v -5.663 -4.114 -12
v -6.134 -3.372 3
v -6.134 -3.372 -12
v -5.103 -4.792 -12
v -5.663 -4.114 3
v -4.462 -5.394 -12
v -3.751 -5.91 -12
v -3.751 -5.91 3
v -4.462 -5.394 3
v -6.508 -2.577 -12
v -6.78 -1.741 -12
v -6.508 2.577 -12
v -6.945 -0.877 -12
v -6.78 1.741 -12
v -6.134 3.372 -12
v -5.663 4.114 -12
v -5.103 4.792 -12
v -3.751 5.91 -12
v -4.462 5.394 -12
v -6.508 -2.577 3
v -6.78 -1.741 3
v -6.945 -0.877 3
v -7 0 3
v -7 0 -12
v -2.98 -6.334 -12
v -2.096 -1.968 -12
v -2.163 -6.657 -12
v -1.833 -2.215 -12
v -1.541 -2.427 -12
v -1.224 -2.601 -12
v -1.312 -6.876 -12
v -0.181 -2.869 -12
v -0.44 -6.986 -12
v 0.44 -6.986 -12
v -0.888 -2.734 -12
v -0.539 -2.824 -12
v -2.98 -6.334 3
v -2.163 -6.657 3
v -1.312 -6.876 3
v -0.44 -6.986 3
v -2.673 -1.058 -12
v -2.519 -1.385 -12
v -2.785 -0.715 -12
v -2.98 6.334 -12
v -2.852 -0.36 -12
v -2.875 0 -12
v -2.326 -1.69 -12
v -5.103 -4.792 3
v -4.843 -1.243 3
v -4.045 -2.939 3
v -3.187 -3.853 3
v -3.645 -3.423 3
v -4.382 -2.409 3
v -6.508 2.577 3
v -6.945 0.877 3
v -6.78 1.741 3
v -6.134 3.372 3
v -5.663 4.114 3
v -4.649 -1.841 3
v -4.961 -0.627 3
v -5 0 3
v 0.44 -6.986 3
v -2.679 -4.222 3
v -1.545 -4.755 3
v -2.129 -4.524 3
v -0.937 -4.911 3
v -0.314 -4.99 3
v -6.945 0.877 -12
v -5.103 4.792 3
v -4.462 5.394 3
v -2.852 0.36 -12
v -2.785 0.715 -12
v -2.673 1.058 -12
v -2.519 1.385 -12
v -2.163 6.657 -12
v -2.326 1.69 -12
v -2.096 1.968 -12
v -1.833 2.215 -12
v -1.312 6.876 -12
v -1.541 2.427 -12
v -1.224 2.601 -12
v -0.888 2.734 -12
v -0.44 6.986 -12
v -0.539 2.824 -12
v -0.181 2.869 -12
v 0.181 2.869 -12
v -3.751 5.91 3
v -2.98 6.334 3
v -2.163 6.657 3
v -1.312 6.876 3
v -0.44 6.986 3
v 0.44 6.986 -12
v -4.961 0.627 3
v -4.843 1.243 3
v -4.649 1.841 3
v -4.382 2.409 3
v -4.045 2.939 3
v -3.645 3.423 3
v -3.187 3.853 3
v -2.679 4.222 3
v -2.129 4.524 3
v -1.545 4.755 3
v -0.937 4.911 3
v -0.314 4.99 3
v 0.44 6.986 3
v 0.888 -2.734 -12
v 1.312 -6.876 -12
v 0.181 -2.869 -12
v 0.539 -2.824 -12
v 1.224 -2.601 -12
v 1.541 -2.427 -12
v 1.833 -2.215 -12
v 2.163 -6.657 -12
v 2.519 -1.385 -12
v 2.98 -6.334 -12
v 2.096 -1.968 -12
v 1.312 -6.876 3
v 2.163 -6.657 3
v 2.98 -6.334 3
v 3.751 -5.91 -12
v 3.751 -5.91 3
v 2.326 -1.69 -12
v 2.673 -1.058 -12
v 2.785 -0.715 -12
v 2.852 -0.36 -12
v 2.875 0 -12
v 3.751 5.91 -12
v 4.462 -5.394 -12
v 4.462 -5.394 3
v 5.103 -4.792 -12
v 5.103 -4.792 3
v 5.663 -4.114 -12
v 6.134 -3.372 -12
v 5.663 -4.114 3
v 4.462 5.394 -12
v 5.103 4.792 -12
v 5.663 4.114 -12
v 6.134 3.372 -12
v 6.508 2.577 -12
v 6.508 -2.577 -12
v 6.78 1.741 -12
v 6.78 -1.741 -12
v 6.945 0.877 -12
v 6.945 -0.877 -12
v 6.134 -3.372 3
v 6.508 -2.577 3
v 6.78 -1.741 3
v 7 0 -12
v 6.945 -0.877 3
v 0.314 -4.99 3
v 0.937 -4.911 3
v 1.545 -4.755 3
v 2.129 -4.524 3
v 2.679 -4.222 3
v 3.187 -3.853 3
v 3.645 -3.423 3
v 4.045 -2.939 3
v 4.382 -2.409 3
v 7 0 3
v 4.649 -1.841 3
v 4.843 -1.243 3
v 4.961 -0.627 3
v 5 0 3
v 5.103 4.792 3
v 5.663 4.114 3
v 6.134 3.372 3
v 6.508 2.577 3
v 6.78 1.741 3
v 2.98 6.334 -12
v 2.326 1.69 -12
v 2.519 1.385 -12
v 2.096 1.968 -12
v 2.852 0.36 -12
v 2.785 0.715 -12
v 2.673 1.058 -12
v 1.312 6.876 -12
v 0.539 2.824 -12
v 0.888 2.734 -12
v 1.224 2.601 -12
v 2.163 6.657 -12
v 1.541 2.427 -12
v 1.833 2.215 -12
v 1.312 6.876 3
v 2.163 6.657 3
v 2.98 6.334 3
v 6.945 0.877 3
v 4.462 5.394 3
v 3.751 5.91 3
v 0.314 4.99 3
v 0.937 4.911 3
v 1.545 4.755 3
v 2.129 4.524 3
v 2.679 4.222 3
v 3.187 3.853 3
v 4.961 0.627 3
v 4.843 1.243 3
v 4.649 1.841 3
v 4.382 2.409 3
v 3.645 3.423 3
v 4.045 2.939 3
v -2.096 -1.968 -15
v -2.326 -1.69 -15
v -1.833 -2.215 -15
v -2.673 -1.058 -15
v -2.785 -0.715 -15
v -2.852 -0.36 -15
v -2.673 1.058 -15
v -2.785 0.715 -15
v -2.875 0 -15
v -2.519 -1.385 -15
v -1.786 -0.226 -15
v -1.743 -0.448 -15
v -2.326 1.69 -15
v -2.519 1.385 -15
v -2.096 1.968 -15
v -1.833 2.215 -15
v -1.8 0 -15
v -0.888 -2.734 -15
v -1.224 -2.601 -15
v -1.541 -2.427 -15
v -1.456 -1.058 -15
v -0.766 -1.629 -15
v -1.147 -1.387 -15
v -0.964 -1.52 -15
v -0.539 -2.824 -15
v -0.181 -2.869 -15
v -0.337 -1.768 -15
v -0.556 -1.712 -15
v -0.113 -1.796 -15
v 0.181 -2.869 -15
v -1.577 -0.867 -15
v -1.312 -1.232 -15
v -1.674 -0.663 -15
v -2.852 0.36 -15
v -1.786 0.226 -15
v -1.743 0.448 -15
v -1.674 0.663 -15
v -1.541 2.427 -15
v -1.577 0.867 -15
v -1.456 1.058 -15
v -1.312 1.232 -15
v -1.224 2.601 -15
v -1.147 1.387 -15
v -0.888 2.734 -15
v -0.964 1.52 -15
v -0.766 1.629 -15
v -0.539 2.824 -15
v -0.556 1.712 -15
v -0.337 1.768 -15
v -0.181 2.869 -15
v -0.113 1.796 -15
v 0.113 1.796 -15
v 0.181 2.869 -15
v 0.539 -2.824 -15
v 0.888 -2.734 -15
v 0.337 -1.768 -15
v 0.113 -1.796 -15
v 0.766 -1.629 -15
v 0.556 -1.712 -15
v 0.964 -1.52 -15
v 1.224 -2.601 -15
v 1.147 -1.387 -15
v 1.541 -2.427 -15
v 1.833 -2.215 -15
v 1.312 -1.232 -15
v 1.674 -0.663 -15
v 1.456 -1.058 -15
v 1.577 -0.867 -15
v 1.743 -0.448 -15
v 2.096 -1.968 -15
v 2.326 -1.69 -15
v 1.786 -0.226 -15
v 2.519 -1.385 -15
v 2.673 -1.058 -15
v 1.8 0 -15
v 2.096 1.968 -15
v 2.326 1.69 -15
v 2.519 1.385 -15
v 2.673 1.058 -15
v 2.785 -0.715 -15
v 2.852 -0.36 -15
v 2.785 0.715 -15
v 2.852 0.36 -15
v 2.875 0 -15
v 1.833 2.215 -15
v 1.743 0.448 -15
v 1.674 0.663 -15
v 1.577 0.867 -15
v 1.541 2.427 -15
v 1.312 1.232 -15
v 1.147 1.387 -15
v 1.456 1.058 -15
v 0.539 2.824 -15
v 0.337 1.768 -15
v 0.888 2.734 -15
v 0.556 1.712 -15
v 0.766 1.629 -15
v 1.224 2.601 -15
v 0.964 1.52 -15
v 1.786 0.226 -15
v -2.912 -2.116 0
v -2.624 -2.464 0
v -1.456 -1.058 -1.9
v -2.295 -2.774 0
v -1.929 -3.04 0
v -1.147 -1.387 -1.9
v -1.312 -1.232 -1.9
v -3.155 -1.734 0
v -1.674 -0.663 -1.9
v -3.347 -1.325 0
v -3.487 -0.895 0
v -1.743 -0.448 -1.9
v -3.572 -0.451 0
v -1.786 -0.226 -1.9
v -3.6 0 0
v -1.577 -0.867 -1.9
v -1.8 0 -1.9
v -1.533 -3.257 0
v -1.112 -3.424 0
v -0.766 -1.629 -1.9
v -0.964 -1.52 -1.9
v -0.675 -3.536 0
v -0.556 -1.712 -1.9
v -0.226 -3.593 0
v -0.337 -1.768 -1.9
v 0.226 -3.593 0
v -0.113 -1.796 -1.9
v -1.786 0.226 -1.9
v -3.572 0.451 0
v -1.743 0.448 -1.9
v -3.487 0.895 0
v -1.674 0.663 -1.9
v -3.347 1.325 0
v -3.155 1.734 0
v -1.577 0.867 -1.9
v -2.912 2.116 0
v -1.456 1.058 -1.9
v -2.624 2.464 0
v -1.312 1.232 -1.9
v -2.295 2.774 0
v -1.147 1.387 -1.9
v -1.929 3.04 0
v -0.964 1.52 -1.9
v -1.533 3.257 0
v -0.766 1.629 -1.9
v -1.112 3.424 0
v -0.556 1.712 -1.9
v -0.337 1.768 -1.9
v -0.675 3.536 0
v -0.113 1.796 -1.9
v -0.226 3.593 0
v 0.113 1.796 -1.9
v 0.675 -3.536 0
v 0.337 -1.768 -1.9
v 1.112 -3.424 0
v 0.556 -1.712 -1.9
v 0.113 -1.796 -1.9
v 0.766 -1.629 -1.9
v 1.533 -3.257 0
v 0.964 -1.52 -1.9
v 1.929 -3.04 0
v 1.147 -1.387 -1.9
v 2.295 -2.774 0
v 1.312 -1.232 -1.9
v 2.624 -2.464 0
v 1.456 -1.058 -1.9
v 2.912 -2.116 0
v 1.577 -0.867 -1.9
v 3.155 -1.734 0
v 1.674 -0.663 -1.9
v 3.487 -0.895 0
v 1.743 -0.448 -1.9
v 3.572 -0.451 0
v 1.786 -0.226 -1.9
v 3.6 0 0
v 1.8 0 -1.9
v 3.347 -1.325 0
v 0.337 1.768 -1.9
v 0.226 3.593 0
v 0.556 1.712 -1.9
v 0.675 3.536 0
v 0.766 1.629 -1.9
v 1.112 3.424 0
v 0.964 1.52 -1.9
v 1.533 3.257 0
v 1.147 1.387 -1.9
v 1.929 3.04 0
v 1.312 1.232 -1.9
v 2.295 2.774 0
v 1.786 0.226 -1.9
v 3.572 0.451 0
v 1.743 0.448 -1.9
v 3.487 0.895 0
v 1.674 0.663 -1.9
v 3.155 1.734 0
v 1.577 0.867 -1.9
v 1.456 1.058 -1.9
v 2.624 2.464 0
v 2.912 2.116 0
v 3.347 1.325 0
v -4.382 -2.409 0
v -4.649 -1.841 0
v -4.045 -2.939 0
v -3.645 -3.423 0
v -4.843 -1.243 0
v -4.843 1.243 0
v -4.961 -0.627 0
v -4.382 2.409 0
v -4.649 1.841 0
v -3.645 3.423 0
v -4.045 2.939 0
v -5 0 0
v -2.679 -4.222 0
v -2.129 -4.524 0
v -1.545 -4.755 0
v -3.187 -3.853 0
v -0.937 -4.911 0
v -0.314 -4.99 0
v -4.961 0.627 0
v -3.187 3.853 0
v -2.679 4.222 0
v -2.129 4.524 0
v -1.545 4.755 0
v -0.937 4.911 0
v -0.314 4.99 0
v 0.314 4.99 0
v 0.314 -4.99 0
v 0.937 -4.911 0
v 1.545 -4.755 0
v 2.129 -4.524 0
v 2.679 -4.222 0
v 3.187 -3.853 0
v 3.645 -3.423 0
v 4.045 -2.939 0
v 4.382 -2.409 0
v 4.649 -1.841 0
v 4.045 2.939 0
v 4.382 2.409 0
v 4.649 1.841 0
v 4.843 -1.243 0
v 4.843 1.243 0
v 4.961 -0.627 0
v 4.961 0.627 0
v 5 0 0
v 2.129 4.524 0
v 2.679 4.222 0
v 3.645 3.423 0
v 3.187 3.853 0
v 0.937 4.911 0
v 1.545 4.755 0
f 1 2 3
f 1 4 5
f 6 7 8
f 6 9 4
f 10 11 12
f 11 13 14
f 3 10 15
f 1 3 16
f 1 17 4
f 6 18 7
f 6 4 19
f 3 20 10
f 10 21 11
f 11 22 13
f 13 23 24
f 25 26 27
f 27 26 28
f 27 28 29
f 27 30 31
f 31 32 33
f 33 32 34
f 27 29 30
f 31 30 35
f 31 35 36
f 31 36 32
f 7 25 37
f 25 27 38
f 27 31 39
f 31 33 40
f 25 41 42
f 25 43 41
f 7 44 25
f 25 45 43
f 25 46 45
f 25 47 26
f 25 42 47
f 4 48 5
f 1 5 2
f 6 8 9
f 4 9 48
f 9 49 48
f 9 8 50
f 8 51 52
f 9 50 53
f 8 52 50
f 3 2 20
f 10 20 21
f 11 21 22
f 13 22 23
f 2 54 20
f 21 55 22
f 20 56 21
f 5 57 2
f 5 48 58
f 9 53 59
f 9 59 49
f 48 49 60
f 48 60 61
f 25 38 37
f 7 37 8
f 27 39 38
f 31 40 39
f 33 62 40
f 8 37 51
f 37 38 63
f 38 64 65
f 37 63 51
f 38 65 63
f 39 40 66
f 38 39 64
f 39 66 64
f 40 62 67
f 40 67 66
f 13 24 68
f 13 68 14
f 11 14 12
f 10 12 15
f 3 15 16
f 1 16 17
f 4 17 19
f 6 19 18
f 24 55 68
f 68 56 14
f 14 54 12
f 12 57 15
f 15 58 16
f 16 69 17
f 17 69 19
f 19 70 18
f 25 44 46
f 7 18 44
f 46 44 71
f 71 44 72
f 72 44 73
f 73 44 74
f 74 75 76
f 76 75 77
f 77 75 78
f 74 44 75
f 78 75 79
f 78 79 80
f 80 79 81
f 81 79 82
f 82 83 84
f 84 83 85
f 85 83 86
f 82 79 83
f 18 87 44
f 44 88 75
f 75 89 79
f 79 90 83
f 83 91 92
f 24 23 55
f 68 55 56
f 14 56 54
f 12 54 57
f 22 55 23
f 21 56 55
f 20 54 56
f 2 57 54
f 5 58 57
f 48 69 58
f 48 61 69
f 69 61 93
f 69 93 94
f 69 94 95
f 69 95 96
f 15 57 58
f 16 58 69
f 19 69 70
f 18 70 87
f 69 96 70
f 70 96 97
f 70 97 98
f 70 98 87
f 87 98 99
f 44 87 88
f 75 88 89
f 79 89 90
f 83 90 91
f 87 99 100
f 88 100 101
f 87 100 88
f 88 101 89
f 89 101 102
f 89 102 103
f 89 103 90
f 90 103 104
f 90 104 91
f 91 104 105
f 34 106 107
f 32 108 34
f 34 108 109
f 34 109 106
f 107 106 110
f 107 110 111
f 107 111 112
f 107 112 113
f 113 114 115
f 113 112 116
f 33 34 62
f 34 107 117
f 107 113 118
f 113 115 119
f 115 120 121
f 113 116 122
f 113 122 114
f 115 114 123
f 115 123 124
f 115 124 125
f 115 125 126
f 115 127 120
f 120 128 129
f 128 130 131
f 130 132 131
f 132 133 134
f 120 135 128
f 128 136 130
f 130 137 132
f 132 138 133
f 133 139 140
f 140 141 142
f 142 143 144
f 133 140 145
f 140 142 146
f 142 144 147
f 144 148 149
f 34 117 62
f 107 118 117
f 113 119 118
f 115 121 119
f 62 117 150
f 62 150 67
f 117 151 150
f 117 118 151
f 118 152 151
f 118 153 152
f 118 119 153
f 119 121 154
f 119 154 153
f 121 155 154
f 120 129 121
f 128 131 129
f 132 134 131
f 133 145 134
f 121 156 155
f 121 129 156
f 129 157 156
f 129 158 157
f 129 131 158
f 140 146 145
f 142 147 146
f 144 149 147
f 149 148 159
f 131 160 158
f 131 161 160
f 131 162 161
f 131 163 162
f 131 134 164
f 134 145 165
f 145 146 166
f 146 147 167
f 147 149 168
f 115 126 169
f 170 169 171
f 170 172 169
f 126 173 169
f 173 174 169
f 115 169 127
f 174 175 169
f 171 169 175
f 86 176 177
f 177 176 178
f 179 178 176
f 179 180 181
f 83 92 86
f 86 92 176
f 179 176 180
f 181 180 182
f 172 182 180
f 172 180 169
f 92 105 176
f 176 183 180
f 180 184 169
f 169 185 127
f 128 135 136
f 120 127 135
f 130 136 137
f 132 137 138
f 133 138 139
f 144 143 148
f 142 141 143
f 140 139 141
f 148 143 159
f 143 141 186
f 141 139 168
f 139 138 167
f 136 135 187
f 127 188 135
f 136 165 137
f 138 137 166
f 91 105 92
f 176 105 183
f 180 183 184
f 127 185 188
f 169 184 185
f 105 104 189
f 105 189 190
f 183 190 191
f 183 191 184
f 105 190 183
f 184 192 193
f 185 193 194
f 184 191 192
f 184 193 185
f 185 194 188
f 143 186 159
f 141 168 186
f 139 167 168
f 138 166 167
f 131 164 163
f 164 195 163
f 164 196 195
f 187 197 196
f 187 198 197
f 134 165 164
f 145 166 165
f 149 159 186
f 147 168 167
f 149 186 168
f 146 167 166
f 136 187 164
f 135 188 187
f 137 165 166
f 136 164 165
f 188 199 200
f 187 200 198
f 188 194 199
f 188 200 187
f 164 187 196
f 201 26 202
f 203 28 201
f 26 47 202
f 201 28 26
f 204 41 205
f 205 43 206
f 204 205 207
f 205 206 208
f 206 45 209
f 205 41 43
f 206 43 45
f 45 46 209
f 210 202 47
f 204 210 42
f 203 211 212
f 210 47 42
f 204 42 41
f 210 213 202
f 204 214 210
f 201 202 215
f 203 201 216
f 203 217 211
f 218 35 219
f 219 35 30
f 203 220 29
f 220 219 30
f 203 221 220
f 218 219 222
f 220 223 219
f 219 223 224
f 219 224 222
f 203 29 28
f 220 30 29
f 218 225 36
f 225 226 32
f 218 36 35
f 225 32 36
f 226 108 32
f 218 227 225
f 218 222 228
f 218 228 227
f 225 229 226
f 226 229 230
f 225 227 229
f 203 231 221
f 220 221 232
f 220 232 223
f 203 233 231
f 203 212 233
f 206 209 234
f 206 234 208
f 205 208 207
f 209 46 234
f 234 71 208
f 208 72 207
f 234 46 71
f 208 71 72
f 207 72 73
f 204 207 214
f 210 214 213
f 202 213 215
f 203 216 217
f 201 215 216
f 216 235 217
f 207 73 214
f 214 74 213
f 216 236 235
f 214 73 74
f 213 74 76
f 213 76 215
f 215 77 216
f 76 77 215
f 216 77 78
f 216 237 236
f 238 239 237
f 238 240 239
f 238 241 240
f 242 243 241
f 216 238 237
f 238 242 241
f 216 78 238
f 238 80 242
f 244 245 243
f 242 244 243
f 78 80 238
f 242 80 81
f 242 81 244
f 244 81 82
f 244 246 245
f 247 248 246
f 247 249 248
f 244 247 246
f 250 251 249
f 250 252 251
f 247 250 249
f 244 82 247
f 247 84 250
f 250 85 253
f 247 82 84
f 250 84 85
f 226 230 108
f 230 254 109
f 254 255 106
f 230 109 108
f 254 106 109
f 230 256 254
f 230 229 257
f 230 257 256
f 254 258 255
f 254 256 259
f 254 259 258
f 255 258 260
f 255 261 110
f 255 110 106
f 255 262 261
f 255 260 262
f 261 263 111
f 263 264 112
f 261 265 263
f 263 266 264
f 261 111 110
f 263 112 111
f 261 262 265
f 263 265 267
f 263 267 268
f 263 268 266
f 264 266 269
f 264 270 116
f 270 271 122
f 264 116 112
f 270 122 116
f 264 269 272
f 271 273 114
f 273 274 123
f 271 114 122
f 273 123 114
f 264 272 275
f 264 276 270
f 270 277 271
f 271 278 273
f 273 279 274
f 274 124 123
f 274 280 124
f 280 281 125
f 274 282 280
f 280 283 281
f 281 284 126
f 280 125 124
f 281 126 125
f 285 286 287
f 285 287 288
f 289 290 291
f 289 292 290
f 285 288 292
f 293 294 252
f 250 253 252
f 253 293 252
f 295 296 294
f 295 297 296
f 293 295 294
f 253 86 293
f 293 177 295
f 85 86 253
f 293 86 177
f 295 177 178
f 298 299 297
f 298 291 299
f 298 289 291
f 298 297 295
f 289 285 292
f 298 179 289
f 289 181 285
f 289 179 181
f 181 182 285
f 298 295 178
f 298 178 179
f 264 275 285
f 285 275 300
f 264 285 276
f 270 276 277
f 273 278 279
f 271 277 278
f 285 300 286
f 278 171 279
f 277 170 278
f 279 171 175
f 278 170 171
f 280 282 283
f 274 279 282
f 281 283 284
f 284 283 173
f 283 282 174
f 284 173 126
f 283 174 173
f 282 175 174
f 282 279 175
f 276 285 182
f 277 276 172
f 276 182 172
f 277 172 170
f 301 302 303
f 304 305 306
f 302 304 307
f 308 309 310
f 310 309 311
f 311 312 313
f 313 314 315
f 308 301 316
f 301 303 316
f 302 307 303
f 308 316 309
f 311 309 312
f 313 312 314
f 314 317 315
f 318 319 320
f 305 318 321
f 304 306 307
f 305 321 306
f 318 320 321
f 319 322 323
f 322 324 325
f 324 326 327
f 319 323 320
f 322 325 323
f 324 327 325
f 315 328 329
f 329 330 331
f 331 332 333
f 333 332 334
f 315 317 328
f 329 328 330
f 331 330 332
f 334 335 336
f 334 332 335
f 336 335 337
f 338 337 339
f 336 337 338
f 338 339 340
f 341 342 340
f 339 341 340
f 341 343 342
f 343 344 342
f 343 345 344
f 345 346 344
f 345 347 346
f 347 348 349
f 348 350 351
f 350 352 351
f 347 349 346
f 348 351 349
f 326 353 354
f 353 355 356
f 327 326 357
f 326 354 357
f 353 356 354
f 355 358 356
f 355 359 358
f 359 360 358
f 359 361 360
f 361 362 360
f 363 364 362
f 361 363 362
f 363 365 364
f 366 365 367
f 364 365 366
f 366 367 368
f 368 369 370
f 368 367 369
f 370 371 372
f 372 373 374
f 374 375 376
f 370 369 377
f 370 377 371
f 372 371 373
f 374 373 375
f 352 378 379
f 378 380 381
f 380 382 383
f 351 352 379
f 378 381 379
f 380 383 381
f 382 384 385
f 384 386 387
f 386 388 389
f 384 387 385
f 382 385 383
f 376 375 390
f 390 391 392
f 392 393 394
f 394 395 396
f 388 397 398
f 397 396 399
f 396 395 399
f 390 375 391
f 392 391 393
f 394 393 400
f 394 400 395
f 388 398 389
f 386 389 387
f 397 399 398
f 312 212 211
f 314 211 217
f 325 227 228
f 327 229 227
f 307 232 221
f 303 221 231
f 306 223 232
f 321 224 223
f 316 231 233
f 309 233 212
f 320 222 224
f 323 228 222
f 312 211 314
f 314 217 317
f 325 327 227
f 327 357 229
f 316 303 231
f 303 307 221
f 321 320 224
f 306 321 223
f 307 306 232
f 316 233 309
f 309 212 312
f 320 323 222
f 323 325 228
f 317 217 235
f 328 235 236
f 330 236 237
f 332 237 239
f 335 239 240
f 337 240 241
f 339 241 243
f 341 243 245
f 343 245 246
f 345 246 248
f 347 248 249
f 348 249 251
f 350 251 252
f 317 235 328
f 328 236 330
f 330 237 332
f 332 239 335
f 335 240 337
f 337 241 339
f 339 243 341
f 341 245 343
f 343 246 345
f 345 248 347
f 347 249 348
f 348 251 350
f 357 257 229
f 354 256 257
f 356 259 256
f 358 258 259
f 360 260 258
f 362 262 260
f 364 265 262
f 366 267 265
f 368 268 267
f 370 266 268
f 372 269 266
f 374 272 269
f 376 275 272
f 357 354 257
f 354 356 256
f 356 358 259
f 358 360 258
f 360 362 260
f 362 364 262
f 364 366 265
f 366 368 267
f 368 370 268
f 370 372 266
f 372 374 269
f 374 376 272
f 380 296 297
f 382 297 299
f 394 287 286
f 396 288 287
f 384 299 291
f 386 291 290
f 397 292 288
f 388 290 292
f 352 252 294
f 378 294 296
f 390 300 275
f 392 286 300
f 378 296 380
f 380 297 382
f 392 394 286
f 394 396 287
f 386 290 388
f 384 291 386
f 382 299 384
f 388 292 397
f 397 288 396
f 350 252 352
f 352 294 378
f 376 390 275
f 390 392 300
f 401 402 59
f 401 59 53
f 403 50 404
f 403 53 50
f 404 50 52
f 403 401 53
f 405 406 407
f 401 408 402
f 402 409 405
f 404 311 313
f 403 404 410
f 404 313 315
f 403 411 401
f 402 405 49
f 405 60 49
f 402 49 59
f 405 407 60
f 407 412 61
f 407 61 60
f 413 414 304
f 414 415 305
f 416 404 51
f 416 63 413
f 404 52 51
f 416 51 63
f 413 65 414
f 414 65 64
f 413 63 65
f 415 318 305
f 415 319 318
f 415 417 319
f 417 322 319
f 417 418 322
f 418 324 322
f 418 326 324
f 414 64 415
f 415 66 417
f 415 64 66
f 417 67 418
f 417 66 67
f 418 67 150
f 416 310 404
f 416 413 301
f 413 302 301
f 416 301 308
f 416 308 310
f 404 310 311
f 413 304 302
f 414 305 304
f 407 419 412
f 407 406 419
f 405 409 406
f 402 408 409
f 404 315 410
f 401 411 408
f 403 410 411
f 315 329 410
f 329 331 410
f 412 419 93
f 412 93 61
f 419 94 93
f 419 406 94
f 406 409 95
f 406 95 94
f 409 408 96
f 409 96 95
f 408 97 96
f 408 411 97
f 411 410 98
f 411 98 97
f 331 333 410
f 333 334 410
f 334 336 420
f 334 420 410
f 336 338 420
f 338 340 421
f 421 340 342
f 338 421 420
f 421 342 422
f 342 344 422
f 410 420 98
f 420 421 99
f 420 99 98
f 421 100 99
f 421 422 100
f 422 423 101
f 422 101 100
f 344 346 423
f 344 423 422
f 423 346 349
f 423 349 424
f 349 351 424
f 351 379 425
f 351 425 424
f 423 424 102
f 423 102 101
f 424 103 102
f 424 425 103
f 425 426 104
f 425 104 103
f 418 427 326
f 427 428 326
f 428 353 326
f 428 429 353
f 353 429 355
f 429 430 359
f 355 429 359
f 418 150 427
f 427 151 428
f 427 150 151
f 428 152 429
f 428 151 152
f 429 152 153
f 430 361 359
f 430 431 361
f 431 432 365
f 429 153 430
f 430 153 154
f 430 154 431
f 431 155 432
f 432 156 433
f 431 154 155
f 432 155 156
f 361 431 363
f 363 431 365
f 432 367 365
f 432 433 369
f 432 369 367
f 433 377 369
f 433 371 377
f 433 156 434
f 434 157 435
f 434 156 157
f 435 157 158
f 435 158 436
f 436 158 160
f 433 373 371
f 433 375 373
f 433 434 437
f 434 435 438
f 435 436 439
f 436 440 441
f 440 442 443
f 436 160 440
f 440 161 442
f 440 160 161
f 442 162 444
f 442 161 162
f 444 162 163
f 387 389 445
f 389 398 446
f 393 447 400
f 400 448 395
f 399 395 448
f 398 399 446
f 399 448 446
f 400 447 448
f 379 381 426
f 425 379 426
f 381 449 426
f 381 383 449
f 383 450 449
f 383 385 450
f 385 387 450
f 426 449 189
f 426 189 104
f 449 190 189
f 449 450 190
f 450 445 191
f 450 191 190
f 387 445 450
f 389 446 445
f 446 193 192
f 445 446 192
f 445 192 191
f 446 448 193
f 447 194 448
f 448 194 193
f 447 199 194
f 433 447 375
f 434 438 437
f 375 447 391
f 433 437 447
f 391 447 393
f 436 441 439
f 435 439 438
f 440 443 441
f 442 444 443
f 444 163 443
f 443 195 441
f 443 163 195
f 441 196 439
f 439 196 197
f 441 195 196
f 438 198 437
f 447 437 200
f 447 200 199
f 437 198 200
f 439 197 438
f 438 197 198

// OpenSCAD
$fn = 50;

difference() {
	union() {
		translate(v = [0, 0, -12.0]) {
			cylinder(h = 15, r = 7.0);
		}
		#translate(v = [0, 0, -15.0]) {
			cylinder(h = 15, r = 2.875);
		}
	}
	union() {
		translate(v = [0, 0, 0]) {
			rotate(a = [0, 0, 0]) {
				difference() {
					union() {
						translate(v = [0, 0, -15.0]) {
							cylinder(h = 15, r = 1.5);
						}
						translate(v = [0, 0, -1.9]) {
							cylinder(h = 1.9, r1 = 1.8, r2 = 3.6);
						}
						translate(v = [0, 0, -15.0]) {
							cylinder(h = 15, r = 1.8);
						}
						translate(v = [0, 0, -15.0]) {
							cylinder(h = 15, r = 1.5);
						}
					}
					union();
				}
			}
		}
		#cylinder(h = 3, r = 5.0);
	}
}
